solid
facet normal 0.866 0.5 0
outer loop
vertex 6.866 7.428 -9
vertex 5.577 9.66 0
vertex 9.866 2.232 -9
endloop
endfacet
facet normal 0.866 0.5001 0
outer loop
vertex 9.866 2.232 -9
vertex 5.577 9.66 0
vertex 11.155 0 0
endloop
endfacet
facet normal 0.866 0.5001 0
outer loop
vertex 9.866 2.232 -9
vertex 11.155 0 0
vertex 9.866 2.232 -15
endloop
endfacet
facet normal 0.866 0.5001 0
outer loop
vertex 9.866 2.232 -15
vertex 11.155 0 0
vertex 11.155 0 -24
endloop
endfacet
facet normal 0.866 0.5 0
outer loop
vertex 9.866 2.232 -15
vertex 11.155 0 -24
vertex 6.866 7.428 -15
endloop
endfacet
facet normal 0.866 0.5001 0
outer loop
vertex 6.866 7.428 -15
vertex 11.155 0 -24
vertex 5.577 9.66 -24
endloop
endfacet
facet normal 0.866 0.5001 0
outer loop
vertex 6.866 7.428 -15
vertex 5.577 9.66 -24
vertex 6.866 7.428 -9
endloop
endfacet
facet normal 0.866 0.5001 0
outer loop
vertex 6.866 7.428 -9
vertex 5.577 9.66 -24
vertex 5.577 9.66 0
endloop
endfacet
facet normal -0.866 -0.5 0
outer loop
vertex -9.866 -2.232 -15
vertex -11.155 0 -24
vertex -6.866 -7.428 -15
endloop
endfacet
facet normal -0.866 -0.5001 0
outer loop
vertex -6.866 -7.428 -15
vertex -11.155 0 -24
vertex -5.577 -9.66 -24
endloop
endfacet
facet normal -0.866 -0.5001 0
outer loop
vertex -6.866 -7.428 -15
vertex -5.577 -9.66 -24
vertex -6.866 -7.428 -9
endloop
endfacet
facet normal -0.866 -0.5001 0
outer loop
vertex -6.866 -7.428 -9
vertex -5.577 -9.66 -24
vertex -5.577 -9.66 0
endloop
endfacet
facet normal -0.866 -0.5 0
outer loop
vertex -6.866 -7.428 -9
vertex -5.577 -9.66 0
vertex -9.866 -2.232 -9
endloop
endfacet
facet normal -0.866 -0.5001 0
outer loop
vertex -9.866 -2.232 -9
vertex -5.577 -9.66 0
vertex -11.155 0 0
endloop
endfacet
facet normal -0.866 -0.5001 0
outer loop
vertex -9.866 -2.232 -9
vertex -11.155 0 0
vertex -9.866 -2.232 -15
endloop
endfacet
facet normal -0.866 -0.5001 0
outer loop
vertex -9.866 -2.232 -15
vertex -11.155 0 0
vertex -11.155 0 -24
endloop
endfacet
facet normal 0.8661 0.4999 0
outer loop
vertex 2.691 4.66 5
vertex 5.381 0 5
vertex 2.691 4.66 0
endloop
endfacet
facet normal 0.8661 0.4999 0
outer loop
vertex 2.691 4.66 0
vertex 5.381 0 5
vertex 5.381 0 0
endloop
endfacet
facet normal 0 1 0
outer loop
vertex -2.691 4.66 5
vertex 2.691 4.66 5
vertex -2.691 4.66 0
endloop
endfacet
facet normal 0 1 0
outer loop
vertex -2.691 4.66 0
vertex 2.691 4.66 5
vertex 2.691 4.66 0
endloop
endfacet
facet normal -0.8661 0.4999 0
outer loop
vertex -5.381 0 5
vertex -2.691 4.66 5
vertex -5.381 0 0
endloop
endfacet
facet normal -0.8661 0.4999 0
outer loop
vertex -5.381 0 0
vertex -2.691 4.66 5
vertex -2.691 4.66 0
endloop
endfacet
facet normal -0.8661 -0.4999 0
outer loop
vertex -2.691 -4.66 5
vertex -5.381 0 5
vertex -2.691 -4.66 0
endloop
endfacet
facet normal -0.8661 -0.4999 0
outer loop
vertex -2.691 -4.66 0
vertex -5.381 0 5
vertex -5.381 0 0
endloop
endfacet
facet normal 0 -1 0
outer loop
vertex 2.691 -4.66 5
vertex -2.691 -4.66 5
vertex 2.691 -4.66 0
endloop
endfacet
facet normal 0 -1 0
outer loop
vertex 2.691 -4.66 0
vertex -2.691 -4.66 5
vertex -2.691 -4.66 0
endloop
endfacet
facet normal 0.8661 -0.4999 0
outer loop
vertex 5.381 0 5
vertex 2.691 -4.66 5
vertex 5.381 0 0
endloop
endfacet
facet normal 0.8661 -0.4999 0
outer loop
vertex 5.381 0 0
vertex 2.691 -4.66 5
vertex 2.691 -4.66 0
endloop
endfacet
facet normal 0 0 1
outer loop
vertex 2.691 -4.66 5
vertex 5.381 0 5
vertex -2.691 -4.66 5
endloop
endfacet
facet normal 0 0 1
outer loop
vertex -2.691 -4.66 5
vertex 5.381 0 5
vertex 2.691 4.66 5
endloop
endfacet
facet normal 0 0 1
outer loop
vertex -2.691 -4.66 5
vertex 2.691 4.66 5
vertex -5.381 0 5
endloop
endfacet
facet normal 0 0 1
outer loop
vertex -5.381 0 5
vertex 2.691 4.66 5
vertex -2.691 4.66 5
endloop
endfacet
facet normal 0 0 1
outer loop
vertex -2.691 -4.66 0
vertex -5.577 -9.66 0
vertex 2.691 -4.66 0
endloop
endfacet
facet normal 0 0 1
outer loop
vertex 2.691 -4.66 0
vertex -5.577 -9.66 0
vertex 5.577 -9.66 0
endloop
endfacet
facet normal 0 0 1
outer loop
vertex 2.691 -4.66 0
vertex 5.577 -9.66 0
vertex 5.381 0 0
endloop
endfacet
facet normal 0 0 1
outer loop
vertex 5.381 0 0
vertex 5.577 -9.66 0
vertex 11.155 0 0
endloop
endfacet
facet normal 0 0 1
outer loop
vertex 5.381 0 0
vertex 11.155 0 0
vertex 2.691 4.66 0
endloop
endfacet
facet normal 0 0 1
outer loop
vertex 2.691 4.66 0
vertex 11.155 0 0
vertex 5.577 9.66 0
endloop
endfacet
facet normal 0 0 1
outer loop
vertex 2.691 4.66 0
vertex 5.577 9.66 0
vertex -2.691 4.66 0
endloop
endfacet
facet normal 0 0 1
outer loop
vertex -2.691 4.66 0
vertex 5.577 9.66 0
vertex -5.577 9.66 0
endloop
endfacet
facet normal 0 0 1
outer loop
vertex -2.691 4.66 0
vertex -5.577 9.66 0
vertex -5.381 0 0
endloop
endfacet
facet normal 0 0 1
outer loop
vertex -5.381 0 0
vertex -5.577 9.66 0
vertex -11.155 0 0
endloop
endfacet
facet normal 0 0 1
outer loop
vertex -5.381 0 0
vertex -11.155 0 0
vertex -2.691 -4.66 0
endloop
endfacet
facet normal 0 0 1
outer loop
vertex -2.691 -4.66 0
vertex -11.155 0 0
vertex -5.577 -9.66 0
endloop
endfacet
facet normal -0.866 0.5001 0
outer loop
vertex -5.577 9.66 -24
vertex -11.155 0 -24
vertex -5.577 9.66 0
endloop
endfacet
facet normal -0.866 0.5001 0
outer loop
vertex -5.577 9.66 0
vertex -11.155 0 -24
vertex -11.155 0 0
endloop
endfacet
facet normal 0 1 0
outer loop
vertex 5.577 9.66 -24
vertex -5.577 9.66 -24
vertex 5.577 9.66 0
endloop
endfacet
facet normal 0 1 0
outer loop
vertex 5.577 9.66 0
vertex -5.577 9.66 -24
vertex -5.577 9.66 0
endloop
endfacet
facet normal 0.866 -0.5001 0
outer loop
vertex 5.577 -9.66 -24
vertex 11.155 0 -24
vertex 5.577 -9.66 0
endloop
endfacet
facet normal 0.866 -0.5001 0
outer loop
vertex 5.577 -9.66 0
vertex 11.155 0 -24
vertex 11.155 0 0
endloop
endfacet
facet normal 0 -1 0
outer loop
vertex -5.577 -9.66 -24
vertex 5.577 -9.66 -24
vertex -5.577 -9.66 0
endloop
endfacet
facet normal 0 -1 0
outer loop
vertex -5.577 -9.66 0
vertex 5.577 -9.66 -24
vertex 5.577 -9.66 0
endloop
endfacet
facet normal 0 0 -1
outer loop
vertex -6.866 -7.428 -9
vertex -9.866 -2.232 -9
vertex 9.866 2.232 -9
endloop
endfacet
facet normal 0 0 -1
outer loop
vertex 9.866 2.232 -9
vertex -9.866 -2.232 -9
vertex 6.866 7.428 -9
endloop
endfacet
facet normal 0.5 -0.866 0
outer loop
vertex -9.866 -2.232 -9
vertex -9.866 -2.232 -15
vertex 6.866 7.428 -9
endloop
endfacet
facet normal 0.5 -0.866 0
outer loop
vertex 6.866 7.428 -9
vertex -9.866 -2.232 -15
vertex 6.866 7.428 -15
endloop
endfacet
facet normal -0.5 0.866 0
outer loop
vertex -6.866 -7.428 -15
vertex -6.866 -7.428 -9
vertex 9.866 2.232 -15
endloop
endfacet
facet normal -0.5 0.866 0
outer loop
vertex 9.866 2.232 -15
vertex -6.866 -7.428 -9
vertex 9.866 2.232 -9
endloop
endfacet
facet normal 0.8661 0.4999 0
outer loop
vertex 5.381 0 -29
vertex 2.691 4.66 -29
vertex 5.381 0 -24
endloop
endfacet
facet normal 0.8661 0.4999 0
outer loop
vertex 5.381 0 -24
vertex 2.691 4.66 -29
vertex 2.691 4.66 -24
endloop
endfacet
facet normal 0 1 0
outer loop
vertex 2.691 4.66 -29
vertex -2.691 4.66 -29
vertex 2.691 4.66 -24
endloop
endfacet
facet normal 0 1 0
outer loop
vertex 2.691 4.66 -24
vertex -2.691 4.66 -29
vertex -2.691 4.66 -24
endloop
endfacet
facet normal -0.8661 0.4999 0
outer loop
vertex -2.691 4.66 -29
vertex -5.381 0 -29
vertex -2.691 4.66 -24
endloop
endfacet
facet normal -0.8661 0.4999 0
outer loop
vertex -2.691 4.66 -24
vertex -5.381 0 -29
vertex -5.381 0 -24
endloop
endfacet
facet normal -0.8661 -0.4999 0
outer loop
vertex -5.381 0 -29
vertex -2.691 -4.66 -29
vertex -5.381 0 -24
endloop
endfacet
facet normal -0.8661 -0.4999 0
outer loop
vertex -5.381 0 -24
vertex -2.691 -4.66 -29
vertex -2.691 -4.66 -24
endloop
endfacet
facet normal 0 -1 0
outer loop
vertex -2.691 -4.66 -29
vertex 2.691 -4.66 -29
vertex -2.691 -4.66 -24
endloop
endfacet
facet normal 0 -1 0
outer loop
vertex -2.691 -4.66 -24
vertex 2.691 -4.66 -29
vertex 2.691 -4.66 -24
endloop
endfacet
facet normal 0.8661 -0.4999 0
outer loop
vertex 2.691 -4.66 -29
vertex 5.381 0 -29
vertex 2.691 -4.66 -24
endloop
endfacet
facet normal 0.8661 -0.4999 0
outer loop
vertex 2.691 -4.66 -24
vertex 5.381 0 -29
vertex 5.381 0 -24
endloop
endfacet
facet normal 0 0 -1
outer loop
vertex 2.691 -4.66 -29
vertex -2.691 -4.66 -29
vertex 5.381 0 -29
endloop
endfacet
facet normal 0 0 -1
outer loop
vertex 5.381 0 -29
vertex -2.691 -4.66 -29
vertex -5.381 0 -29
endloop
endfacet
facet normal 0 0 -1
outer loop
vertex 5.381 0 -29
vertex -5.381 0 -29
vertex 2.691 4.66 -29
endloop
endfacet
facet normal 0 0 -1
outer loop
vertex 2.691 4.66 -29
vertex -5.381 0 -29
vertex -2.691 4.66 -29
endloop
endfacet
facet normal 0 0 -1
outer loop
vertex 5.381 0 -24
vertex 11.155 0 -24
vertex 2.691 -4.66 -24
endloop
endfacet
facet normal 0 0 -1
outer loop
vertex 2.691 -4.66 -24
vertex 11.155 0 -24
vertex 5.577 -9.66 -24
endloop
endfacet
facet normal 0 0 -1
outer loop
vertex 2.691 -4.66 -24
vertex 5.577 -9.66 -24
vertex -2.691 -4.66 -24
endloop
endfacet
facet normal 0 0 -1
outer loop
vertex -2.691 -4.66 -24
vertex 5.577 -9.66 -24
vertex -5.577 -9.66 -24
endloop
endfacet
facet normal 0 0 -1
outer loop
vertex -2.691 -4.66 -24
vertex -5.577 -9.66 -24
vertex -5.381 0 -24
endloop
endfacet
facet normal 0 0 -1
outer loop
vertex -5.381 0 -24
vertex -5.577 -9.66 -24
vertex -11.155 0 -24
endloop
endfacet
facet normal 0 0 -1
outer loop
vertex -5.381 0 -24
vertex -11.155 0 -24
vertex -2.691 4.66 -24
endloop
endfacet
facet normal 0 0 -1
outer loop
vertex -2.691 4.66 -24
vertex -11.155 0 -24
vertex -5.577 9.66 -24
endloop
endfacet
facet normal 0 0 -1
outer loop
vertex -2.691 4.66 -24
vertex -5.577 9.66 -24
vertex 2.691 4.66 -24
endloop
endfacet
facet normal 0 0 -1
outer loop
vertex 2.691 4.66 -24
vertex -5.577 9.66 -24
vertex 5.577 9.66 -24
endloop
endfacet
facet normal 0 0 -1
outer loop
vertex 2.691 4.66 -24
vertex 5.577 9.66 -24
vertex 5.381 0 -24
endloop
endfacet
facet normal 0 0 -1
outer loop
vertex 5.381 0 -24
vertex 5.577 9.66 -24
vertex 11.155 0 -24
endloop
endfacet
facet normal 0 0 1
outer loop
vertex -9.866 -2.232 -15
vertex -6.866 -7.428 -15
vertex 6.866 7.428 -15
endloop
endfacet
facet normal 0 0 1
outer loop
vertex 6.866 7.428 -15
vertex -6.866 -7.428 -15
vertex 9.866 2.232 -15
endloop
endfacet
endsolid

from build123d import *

# Parameters (mm, degrees)
BOSS_EXTRU_1_DEPTH      = 5
BOSS_EXTRU_2_DEPTH      = 12
ESQUISSE4_W             = 3
ESQUISSE4_H             = 6
ENL_V_MAT_EXTRU_1_DEPTH = 41.844032186


with BuildPart() as part:
    # Esquisse1 → Boss.-Extru.1 (new body)
    with BuildSketch(Plane.XY):
        Polygon((2.690598923, 4.660254038), (-2.690598923, 4.660254038), (-5.381197846, 0), (-2.690598923, -4.660254038), (2.690598923, -4.660254038), (5.381197846, 0), align=None)
    boss_extru_1 = extrude(amount=BOSS_EXTRU_1_DEPTH)

    # Esquisse2 → Boss.-Extru.2 (add)
    with BuildSketch(Plane(origin=(0, 0, 0), x_dir=(-1, 0, 0), z_dir=(0, 0, -1))):
        Polygon((5.577350269, 9.660254038), (-5.577350269, 9.660254038), (-11.154700538, 0), (-5.577350269, -9.660254038), (5.577350269, -9.660254038), (11.154700538, 0), align=None)
    boss_extru_2 = extrude(amount=BOSS_EXTRU_2_DEPTH)

    # Esquisse4 → Enlèv. mat.-Extru.1 (cut, symmetric)
    with BuildSketch(Plane(origin=(-19.520725942, 14.490381057, 0), x_dir=(0, 0, 1), z_dir=(0.8660254037844387, 0.49999999999999983, 0))):
        with Locations((-10.5, 22.309401077)):
            Rectangle(ESQUISSE4_W, ESQUISSE4_H)
    enl_v_mat_extru_1 = extrude(amount=ENL_V_MAT_EXTRU_1_DEPTH, both=True, mode=Mode.SUBTRACT)

    # Symétrie1: Boss.-Extru.1, Boss.-Extru.2, Enlèv. mat.-Extru.1 across plane
    add(boss_extru_1.mirror(Plane(origin=(0, 0, -12), x_dir=(1, 0, 0), z_dir=(0, 0, -1))))
    add(boss_extru_2.mirror(Plane(origin=(0, 0, -12), x_dir=(1, 0, 0), z_dir=(0, 0, -1))))
    add(enl_v_mat_extru_1.mirror(Plane(origin=(0, 0, -12), x_dir=(1, 0, 0), z_dir=(0, 0, -1))), mode=Mode.SUBTRACT)


solid = part.part
